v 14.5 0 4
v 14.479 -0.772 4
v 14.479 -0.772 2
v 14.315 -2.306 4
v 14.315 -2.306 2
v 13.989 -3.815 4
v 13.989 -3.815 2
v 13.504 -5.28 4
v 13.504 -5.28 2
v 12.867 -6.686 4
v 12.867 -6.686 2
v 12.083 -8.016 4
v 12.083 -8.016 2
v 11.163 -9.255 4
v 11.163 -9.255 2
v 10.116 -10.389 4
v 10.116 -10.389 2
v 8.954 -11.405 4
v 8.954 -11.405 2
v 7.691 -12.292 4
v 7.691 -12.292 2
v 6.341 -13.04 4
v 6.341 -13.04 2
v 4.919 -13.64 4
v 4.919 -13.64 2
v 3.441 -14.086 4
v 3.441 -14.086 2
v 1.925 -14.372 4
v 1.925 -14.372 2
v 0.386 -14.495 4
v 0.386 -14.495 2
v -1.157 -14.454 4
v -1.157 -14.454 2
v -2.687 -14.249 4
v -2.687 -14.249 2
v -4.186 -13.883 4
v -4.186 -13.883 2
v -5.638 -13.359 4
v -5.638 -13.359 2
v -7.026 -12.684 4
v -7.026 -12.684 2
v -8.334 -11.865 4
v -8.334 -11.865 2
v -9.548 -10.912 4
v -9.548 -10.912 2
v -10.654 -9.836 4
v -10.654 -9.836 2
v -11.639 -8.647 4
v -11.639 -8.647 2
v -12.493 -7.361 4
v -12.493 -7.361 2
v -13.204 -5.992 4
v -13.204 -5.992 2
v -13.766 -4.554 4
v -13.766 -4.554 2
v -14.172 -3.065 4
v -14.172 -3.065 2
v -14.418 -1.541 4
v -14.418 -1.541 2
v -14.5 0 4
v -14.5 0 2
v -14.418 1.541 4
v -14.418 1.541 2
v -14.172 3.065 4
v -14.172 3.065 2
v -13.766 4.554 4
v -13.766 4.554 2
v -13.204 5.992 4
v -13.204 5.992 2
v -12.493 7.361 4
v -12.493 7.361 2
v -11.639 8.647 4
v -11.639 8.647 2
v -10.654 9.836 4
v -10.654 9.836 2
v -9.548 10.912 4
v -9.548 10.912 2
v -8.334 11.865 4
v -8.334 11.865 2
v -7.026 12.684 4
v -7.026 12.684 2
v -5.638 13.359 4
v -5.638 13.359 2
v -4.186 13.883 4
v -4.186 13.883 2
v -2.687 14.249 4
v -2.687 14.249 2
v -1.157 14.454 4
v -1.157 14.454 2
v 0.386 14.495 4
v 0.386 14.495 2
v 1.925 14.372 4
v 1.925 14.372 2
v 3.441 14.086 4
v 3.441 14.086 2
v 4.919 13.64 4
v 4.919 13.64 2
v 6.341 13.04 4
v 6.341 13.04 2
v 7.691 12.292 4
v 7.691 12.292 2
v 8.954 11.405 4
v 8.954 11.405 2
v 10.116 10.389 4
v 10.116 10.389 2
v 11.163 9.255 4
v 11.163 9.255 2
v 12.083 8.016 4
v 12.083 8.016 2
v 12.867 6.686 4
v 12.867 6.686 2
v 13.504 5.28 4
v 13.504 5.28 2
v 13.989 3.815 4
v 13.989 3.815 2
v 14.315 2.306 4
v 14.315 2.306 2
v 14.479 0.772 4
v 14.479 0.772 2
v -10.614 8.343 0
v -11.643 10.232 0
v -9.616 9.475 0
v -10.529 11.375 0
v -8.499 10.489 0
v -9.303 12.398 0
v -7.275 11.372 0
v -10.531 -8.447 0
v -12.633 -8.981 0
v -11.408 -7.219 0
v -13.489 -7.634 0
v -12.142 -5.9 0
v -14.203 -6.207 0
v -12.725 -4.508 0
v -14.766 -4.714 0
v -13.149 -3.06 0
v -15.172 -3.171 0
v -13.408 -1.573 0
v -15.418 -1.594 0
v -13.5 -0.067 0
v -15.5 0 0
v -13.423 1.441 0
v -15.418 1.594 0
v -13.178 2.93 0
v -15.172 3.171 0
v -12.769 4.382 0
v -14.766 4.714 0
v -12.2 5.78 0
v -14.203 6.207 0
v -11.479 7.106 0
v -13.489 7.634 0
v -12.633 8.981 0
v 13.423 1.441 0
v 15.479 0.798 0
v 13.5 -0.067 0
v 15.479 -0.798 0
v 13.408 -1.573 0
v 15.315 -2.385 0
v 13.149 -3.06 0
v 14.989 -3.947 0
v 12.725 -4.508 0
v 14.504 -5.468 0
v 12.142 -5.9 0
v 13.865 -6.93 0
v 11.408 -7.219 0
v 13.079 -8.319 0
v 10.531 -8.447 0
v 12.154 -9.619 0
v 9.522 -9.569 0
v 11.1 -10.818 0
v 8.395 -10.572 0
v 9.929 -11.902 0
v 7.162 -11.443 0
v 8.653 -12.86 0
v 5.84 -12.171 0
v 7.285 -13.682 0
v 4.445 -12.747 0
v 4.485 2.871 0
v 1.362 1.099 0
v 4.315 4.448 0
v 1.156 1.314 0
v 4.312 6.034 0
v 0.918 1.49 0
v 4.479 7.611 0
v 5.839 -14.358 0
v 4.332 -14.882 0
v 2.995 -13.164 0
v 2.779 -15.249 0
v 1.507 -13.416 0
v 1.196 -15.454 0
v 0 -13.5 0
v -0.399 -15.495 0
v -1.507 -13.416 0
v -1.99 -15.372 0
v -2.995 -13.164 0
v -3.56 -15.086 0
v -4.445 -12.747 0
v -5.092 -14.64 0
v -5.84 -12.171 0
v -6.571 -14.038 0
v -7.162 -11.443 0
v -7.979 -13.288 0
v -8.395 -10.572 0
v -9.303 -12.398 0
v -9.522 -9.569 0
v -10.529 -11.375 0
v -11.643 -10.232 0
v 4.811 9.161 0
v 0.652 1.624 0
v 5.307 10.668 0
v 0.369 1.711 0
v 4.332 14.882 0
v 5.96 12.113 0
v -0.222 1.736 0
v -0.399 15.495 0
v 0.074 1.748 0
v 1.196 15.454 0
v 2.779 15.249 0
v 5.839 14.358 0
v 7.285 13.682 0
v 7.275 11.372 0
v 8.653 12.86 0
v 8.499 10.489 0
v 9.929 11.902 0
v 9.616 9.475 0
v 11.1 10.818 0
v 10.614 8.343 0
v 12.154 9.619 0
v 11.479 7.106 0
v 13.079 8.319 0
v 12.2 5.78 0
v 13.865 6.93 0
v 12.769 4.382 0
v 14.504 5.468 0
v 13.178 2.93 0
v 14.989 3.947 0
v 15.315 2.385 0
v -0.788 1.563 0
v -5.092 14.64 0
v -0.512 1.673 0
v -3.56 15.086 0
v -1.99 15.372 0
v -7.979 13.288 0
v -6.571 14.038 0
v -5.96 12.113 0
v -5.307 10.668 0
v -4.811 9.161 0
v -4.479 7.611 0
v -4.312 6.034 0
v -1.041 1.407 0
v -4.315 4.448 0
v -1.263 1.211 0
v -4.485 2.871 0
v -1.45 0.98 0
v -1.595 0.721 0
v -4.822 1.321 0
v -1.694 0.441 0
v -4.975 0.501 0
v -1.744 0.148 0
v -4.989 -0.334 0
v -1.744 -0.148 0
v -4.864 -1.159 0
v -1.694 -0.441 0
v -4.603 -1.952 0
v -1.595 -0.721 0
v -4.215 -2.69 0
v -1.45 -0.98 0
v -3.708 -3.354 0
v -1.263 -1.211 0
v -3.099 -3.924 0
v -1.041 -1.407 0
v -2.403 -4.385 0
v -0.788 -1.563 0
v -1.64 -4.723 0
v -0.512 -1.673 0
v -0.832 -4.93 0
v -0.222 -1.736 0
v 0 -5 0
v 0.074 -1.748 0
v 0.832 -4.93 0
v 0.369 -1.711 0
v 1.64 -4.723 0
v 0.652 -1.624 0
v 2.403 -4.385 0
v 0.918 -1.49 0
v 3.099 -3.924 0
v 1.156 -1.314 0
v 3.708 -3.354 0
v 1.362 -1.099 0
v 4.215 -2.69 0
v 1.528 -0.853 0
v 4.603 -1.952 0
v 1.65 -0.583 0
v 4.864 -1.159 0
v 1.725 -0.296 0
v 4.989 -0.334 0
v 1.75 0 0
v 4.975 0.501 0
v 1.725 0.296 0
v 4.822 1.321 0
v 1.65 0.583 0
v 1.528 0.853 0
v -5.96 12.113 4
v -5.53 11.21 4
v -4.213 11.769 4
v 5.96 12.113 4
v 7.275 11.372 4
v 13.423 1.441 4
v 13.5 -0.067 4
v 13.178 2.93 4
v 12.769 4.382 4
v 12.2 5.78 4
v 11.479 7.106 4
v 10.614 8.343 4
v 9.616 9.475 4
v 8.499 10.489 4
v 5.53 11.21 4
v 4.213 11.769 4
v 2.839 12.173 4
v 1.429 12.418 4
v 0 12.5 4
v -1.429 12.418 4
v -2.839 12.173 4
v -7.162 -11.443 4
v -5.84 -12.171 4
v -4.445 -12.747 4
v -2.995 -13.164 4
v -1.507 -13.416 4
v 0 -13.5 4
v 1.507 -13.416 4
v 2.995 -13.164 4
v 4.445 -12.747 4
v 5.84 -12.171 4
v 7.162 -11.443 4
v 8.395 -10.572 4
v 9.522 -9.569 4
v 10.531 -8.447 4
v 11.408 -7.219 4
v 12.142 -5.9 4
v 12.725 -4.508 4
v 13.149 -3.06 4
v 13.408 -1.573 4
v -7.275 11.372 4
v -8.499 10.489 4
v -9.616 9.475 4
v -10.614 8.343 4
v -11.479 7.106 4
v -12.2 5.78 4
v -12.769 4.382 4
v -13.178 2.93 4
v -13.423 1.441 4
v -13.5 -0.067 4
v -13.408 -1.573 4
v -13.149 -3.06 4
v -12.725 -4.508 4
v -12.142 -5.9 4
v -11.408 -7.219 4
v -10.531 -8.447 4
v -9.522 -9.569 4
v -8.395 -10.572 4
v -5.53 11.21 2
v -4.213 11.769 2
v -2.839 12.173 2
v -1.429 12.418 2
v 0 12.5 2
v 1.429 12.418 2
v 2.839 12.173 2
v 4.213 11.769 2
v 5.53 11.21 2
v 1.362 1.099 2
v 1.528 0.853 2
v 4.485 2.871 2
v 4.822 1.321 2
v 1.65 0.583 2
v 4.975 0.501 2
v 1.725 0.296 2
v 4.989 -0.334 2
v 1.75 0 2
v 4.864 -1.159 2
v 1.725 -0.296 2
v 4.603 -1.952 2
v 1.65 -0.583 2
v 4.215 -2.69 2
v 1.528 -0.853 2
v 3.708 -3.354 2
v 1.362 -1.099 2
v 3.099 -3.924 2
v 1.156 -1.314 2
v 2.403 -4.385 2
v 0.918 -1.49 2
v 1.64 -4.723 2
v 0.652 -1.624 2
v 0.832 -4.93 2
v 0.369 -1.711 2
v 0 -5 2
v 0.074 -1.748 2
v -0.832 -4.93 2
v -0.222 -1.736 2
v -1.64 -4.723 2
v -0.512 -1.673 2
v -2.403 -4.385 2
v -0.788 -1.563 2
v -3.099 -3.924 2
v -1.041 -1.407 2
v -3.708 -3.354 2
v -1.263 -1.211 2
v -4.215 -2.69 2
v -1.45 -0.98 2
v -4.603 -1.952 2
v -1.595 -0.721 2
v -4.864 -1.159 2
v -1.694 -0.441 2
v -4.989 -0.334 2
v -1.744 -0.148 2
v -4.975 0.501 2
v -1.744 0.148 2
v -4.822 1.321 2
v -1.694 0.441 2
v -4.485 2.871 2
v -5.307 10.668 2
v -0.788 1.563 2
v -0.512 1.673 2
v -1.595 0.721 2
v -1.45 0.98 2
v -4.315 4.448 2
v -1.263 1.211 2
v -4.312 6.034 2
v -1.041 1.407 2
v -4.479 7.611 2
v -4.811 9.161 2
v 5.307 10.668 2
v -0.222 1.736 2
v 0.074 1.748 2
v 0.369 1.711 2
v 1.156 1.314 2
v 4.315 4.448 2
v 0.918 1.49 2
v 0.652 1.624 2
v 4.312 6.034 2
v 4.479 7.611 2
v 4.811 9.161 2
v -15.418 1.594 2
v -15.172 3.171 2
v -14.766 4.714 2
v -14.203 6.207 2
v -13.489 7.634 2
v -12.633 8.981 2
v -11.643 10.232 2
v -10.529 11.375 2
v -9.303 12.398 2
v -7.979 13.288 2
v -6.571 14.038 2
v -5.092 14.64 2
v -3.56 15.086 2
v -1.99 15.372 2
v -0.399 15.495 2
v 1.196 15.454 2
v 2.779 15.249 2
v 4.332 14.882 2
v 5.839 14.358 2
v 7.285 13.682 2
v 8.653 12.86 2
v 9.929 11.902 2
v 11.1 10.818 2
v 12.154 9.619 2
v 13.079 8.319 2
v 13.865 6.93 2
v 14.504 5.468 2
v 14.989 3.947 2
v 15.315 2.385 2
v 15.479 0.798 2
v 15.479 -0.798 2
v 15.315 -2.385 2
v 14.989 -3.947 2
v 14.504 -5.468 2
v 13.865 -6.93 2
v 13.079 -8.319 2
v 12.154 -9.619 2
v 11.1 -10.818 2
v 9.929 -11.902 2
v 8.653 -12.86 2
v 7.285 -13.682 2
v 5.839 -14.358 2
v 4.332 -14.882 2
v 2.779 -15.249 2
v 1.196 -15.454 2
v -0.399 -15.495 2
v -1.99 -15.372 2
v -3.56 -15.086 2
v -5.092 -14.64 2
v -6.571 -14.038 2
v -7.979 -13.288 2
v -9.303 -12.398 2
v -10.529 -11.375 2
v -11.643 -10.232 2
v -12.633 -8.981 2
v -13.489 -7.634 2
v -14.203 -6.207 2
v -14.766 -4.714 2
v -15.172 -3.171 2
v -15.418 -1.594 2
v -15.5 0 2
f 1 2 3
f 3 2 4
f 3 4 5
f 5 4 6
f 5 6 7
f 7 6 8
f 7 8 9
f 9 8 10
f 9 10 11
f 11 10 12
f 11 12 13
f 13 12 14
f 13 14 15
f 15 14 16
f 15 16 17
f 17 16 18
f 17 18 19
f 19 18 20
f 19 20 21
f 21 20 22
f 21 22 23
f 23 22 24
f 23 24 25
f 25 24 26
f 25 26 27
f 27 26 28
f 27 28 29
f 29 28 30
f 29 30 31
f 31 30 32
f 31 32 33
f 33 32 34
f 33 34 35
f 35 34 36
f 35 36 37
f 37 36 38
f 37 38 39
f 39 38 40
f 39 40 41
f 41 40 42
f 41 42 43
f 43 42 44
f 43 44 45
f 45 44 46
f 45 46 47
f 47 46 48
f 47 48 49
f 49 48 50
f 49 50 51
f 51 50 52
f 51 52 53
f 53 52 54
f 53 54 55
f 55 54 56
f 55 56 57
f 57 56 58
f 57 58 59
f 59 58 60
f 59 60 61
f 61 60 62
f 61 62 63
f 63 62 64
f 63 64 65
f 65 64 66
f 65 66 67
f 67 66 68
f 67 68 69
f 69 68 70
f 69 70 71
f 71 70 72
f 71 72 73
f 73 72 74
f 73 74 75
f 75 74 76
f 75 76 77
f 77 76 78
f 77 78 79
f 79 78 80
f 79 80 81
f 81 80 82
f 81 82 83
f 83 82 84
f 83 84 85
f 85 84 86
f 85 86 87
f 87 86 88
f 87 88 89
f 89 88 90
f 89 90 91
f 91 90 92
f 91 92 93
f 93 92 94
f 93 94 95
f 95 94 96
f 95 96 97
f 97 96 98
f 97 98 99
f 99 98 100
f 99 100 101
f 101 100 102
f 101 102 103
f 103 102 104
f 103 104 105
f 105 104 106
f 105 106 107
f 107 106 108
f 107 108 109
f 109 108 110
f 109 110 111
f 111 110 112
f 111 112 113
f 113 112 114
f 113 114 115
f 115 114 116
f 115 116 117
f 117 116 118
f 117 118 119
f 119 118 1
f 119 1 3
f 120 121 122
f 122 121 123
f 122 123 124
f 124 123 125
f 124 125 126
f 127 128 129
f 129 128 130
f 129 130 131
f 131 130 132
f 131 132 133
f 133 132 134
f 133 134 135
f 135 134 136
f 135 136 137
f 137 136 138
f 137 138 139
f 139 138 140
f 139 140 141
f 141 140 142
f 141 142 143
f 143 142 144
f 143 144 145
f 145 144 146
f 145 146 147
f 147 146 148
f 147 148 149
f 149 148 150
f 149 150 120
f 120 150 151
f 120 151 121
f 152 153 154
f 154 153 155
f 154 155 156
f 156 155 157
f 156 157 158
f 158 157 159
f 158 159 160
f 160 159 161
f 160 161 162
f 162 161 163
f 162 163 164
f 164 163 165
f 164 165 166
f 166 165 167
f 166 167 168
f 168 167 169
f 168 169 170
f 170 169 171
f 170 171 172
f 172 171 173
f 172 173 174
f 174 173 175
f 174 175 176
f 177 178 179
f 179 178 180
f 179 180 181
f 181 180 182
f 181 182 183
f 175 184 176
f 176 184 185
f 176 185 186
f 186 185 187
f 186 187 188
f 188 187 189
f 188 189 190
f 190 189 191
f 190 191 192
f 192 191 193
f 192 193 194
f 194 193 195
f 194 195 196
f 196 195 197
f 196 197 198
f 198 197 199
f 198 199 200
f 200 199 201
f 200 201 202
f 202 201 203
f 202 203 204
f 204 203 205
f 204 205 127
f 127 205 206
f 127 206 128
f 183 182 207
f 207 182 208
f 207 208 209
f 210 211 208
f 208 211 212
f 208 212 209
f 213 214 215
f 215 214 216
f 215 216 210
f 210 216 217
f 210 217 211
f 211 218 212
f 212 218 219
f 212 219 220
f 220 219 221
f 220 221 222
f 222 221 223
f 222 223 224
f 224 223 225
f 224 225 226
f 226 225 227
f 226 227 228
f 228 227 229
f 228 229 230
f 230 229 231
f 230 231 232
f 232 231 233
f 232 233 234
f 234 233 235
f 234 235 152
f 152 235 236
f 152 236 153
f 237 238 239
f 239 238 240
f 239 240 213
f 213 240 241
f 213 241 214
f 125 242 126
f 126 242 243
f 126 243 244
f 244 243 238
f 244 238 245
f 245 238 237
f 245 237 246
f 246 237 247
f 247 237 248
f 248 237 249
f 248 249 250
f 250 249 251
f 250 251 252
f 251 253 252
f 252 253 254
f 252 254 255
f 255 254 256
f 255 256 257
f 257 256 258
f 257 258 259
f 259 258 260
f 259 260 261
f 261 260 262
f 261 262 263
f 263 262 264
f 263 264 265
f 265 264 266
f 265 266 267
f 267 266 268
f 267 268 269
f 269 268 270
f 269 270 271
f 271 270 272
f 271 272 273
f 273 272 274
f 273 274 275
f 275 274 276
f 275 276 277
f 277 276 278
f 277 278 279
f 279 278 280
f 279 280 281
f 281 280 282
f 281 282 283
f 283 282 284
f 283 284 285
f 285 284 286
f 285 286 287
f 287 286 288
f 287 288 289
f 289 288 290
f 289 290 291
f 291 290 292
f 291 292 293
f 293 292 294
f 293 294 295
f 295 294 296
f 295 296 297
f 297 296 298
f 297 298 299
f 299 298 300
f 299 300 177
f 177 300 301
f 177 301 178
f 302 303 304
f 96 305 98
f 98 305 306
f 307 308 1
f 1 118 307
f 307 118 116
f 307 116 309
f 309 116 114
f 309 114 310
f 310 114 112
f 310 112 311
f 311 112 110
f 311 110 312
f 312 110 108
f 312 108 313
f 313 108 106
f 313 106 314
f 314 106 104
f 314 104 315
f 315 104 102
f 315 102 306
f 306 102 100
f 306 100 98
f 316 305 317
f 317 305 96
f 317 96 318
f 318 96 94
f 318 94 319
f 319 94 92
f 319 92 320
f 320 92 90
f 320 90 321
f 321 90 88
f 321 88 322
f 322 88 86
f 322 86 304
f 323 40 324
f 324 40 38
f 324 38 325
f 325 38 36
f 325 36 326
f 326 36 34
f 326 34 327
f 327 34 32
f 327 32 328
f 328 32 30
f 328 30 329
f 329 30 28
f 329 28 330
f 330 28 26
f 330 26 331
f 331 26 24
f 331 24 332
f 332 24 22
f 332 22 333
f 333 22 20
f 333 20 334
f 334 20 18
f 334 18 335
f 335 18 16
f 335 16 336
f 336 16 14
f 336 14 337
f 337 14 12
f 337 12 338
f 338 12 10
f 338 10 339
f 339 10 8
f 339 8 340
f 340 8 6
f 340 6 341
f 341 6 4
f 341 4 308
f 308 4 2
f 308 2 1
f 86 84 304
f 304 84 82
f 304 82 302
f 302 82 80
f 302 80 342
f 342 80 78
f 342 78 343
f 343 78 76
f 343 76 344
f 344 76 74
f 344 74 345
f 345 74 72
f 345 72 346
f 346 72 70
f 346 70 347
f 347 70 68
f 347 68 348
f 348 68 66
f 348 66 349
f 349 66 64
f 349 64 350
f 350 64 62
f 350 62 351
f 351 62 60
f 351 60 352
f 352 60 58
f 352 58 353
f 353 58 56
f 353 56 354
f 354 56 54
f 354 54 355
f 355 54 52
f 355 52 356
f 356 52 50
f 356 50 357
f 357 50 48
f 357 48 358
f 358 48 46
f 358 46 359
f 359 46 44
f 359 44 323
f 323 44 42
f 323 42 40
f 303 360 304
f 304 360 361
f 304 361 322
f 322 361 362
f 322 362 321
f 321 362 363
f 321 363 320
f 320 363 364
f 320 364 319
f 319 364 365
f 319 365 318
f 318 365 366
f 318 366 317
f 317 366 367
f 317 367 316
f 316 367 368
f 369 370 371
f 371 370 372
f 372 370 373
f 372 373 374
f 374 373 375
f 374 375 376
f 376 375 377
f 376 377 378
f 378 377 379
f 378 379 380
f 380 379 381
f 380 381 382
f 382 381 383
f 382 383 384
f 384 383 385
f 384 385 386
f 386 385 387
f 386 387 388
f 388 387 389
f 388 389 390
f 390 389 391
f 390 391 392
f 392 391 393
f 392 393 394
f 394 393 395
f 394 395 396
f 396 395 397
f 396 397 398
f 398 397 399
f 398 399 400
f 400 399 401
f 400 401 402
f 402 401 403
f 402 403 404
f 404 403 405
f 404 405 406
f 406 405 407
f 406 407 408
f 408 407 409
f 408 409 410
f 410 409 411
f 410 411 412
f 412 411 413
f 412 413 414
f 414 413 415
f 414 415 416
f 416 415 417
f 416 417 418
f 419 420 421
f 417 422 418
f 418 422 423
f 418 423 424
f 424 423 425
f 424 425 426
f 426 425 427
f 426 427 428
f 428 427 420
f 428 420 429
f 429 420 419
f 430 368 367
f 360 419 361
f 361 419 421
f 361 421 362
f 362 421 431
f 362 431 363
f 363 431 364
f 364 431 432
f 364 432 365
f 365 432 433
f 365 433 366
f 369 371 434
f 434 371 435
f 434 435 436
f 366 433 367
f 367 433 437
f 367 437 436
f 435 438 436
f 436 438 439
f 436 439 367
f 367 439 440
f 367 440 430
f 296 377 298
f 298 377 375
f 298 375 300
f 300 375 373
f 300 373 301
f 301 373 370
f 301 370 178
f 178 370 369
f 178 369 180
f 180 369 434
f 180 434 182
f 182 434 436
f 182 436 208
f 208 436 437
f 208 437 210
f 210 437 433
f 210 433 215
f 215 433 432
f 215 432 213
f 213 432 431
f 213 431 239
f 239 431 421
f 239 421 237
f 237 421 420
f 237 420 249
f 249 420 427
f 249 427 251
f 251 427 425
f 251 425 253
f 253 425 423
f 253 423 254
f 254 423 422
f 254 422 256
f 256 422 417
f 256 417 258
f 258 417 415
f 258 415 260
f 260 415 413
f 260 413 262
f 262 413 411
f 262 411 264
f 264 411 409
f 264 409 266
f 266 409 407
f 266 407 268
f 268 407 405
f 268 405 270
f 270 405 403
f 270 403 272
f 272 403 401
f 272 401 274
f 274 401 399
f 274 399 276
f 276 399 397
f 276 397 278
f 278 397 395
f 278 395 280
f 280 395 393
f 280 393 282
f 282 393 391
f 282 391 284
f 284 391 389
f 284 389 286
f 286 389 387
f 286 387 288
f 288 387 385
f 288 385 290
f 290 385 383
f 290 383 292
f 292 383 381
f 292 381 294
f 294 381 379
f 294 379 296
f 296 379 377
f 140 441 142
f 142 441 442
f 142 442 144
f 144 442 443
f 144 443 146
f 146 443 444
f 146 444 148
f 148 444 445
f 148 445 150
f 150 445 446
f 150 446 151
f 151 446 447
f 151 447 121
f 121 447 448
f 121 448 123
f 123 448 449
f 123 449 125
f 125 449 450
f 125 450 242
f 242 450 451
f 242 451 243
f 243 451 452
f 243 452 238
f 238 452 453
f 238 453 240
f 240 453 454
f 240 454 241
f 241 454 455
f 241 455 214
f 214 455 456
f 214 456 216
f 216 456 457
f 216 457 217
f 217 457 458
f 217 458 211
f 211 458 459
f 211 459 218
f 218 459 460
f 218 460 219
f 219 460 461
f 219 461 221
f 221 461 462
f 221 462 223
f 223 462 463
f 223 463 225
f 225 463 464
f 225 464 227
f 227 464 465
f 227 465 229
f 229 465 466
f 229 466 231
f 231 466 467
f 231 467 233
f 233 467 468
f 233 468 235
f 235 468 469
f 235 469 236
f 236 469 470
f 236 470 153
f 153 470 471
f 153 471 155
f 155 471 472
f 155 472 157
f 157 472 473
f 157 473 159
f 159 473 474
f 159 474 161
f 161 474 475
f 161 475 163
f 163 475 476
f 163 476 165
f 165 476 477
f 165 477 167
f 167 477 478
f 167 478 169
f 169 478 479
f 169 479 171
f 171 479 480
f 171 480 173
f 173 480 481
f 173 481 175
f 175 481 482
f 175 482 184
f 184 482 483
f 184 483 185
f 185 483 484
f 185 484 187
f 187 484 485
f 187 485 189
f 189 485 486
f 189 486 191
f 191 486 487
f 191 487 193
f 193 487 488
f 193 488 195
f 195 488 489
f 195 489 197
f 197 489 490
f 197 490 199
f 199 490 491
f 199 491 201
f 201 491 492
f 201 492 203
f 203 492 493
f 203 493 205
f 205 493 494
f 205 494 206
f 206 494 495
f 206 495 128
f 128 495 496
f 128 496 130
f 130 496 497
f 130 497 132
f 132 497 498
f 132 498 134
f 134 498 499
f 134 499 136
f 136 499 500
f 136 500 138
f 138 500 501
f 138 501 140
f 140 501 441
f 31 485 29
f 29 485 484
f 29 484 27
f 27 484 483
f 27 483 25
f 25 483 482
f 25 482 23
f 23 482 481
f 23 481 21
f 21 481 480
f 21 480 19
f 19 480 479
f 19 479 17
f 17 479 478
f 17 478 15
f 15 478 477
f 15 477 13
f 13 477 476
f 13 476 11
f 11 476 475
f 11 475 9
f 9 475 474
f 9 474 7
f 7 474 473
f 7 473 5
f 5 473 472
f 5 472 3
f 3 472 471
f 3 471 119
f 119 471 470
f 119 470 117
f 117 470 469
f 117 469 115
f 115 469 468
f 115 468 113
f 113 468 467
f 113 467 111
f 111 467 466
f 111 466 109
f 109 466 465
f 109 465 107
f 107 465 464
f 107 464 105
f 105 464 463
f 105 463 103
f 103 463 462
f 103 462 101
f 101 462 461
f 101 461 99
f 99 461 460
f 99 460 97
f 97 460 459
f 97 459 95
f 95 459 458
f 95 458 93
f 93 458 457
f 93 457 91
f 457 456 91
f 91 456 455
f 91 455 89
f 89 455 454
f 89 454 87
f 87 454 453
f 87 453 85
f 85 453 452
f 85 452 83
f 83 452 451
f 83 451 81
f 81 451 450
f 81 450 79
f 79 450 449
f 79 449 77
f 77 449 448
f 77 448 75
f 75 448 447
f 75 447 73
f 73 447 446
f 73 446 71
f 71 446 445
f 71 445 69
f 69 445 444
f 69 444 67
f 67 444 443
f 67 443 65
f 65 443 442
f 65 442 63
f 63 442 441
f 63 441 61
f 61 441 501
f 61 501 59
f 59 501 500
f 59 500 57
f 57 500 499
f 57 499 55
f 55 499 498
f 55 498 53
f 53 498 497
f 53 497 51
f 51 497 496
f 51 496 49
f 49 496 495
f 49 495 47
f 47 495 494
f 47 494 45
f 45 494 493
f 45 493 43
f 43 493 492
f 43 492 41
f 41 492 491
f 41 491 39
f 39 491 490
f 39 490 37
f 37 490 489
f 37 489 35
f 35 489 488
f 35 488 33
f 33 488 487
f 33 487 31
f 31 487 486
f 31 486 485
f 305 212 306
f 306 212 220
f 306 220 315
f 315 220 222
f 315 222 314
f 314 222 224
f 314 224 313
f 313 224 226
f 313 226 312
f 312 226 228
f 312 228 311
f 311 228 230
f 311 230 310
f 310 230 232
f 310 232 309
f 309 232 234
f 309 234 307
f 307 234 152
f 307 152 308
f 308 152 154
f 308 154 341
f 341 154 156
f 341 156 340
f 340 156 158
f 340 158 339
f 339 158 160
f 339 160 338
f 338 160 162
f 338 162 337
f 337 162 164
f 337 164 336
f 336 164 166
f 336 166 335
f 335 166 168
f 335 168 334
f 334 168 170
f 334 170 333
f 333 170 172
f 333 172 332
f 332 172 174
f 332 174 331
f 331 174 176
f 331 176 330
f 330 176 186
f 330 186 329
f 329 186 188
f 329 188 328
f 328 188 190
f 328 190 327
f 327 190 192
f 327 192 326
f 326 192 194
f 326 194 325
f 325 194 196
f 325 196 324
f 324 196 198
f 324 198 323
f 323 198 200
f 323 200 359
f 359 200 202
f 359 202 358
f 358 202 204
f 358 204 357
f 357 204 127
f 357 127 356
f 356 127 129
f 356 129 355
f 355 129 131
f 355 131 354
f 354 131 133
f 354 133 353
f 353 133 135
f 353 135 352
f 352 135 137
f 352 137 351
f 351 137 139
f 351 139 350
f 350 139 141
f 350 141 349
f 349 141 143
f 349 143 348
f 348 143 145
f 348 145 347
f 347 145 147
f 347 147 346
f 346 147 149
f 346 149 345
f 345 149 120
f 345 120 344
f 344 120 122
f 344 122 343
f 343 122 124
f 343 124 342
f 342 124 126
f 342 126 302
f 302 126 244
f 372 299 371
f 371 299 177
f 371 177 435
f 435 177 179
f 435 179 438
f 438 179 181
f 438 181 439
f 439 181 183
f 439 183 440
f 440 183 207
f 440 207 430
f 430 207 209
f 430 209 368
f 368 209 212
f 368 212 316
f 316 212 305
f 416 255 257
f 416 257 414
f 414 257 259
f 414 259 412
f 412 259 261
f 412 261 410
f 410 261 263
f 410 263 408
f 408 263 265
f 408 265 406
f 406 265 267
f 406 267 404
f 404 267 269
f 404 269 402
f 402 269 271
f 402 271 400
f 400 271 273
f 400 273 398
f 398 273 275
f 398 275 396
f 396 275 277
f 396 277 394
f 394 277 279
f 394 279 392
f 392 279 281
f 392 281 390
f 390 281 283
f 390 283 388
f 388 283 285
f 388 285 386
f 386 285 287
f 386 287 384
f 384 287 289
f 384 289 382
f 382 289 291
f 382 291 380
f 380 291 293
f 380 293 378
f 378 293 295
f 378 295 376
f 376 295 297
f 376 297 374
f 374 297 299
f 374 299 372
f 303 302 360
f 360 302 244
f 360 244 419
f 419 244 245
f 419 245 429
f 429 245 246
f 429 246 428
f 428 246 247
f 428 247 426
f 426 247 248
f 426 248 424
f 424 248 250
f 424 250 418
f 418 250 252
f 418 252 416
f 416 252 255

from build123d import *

# Parameters (mm, degrees)
SKETCH1_R           = 14.5
BOSS_EXTRUDE1_DEPTH = 2
SKETCH2_R           = 14.5
SKETCH2_R_2         = 12.5
BOSS_EXTRUDE2_DEPTH = 2
SKETCH3_R           = 1.75
CUT_EXTRUDE1_DEPTH  = 2
SKETCH4_R           = 15.5
SKETCH4_R_2         = 14.5
BOSS_EXTRUDE3_DEPTH = 2
CUT_EXTRUDE2_DEPTH  = 23.282279955


with BuildPart() as part:
    # Sketch1 → Boss-Extrude1 (new body)
    with BuildSketch(Plane.XY):
        Circle(SKETCH1_R)
    extrude(amount=BOSS_EXTRUDE1_DEPTH)

    # Sketch2 → Boss-Extrude2 (add)
    with BuildSketch(Plane.XY.offset(2)):
        Circle(SKETCH2_R)
        Circle(SKETCH2_R_2, mode=Mode.SUBTRACT)
    extrude(amount=BOSS_EXTRUDE2_DEPTH)

    # Sketch3 → Cut-Extrude1 (cut)
    with BuildSketch(Plane.XY.offset(2)):
        Circle(SKETCH3_R)
    extrude(amount=-CUT_EXTRUDE1_DEPTH, mode=Mode.SUBTRACT)

    # Sketch4 → Boss-Extrude3 (add)
    with BuildSketch(Plane(origin=(0, 0, 0), x_dir=(-1, 0, 0), z_dir=(0, 0, -1))):
        Circle(SKETCH4_R)
        Circle(SKETCH4_R_2, mode=Mode.SUBTRACT)
    extrude(amount=-BOSS_EXTRUDE3_DEPTH)

    # Sketch5 → Cut-Extrude2 (cut, through all)
    with BuildSketch(Plane(origin=(0, 0, 0), x_dir=(-1, 0, 0), z_dir=(0, 0, -1))):
        with BuildLine():
            ThreePointArc((-4.822296171, 1.321158447), (0, -5), (4.822296171, 1.321158447))
            ThreePointArc((4.822296171, 1.321158447), (4.3745284, 6.824326541), (5.960008585, 12.113145655))
            ThreePointArc((5.960008585, 12.113145655), (0, -13.5), (-5.960008585, 12.113145655))
            ThreePointArc((-5.960008585, 12.113145655), (-4.3745284, 6.824326541), (-4.822296171, 1.321158447))
        make_face()
    extrude(amount=-CUT_EXTRUDE2_DEPTH, mode=Mode.SUBTRACT)


solid = part.part
